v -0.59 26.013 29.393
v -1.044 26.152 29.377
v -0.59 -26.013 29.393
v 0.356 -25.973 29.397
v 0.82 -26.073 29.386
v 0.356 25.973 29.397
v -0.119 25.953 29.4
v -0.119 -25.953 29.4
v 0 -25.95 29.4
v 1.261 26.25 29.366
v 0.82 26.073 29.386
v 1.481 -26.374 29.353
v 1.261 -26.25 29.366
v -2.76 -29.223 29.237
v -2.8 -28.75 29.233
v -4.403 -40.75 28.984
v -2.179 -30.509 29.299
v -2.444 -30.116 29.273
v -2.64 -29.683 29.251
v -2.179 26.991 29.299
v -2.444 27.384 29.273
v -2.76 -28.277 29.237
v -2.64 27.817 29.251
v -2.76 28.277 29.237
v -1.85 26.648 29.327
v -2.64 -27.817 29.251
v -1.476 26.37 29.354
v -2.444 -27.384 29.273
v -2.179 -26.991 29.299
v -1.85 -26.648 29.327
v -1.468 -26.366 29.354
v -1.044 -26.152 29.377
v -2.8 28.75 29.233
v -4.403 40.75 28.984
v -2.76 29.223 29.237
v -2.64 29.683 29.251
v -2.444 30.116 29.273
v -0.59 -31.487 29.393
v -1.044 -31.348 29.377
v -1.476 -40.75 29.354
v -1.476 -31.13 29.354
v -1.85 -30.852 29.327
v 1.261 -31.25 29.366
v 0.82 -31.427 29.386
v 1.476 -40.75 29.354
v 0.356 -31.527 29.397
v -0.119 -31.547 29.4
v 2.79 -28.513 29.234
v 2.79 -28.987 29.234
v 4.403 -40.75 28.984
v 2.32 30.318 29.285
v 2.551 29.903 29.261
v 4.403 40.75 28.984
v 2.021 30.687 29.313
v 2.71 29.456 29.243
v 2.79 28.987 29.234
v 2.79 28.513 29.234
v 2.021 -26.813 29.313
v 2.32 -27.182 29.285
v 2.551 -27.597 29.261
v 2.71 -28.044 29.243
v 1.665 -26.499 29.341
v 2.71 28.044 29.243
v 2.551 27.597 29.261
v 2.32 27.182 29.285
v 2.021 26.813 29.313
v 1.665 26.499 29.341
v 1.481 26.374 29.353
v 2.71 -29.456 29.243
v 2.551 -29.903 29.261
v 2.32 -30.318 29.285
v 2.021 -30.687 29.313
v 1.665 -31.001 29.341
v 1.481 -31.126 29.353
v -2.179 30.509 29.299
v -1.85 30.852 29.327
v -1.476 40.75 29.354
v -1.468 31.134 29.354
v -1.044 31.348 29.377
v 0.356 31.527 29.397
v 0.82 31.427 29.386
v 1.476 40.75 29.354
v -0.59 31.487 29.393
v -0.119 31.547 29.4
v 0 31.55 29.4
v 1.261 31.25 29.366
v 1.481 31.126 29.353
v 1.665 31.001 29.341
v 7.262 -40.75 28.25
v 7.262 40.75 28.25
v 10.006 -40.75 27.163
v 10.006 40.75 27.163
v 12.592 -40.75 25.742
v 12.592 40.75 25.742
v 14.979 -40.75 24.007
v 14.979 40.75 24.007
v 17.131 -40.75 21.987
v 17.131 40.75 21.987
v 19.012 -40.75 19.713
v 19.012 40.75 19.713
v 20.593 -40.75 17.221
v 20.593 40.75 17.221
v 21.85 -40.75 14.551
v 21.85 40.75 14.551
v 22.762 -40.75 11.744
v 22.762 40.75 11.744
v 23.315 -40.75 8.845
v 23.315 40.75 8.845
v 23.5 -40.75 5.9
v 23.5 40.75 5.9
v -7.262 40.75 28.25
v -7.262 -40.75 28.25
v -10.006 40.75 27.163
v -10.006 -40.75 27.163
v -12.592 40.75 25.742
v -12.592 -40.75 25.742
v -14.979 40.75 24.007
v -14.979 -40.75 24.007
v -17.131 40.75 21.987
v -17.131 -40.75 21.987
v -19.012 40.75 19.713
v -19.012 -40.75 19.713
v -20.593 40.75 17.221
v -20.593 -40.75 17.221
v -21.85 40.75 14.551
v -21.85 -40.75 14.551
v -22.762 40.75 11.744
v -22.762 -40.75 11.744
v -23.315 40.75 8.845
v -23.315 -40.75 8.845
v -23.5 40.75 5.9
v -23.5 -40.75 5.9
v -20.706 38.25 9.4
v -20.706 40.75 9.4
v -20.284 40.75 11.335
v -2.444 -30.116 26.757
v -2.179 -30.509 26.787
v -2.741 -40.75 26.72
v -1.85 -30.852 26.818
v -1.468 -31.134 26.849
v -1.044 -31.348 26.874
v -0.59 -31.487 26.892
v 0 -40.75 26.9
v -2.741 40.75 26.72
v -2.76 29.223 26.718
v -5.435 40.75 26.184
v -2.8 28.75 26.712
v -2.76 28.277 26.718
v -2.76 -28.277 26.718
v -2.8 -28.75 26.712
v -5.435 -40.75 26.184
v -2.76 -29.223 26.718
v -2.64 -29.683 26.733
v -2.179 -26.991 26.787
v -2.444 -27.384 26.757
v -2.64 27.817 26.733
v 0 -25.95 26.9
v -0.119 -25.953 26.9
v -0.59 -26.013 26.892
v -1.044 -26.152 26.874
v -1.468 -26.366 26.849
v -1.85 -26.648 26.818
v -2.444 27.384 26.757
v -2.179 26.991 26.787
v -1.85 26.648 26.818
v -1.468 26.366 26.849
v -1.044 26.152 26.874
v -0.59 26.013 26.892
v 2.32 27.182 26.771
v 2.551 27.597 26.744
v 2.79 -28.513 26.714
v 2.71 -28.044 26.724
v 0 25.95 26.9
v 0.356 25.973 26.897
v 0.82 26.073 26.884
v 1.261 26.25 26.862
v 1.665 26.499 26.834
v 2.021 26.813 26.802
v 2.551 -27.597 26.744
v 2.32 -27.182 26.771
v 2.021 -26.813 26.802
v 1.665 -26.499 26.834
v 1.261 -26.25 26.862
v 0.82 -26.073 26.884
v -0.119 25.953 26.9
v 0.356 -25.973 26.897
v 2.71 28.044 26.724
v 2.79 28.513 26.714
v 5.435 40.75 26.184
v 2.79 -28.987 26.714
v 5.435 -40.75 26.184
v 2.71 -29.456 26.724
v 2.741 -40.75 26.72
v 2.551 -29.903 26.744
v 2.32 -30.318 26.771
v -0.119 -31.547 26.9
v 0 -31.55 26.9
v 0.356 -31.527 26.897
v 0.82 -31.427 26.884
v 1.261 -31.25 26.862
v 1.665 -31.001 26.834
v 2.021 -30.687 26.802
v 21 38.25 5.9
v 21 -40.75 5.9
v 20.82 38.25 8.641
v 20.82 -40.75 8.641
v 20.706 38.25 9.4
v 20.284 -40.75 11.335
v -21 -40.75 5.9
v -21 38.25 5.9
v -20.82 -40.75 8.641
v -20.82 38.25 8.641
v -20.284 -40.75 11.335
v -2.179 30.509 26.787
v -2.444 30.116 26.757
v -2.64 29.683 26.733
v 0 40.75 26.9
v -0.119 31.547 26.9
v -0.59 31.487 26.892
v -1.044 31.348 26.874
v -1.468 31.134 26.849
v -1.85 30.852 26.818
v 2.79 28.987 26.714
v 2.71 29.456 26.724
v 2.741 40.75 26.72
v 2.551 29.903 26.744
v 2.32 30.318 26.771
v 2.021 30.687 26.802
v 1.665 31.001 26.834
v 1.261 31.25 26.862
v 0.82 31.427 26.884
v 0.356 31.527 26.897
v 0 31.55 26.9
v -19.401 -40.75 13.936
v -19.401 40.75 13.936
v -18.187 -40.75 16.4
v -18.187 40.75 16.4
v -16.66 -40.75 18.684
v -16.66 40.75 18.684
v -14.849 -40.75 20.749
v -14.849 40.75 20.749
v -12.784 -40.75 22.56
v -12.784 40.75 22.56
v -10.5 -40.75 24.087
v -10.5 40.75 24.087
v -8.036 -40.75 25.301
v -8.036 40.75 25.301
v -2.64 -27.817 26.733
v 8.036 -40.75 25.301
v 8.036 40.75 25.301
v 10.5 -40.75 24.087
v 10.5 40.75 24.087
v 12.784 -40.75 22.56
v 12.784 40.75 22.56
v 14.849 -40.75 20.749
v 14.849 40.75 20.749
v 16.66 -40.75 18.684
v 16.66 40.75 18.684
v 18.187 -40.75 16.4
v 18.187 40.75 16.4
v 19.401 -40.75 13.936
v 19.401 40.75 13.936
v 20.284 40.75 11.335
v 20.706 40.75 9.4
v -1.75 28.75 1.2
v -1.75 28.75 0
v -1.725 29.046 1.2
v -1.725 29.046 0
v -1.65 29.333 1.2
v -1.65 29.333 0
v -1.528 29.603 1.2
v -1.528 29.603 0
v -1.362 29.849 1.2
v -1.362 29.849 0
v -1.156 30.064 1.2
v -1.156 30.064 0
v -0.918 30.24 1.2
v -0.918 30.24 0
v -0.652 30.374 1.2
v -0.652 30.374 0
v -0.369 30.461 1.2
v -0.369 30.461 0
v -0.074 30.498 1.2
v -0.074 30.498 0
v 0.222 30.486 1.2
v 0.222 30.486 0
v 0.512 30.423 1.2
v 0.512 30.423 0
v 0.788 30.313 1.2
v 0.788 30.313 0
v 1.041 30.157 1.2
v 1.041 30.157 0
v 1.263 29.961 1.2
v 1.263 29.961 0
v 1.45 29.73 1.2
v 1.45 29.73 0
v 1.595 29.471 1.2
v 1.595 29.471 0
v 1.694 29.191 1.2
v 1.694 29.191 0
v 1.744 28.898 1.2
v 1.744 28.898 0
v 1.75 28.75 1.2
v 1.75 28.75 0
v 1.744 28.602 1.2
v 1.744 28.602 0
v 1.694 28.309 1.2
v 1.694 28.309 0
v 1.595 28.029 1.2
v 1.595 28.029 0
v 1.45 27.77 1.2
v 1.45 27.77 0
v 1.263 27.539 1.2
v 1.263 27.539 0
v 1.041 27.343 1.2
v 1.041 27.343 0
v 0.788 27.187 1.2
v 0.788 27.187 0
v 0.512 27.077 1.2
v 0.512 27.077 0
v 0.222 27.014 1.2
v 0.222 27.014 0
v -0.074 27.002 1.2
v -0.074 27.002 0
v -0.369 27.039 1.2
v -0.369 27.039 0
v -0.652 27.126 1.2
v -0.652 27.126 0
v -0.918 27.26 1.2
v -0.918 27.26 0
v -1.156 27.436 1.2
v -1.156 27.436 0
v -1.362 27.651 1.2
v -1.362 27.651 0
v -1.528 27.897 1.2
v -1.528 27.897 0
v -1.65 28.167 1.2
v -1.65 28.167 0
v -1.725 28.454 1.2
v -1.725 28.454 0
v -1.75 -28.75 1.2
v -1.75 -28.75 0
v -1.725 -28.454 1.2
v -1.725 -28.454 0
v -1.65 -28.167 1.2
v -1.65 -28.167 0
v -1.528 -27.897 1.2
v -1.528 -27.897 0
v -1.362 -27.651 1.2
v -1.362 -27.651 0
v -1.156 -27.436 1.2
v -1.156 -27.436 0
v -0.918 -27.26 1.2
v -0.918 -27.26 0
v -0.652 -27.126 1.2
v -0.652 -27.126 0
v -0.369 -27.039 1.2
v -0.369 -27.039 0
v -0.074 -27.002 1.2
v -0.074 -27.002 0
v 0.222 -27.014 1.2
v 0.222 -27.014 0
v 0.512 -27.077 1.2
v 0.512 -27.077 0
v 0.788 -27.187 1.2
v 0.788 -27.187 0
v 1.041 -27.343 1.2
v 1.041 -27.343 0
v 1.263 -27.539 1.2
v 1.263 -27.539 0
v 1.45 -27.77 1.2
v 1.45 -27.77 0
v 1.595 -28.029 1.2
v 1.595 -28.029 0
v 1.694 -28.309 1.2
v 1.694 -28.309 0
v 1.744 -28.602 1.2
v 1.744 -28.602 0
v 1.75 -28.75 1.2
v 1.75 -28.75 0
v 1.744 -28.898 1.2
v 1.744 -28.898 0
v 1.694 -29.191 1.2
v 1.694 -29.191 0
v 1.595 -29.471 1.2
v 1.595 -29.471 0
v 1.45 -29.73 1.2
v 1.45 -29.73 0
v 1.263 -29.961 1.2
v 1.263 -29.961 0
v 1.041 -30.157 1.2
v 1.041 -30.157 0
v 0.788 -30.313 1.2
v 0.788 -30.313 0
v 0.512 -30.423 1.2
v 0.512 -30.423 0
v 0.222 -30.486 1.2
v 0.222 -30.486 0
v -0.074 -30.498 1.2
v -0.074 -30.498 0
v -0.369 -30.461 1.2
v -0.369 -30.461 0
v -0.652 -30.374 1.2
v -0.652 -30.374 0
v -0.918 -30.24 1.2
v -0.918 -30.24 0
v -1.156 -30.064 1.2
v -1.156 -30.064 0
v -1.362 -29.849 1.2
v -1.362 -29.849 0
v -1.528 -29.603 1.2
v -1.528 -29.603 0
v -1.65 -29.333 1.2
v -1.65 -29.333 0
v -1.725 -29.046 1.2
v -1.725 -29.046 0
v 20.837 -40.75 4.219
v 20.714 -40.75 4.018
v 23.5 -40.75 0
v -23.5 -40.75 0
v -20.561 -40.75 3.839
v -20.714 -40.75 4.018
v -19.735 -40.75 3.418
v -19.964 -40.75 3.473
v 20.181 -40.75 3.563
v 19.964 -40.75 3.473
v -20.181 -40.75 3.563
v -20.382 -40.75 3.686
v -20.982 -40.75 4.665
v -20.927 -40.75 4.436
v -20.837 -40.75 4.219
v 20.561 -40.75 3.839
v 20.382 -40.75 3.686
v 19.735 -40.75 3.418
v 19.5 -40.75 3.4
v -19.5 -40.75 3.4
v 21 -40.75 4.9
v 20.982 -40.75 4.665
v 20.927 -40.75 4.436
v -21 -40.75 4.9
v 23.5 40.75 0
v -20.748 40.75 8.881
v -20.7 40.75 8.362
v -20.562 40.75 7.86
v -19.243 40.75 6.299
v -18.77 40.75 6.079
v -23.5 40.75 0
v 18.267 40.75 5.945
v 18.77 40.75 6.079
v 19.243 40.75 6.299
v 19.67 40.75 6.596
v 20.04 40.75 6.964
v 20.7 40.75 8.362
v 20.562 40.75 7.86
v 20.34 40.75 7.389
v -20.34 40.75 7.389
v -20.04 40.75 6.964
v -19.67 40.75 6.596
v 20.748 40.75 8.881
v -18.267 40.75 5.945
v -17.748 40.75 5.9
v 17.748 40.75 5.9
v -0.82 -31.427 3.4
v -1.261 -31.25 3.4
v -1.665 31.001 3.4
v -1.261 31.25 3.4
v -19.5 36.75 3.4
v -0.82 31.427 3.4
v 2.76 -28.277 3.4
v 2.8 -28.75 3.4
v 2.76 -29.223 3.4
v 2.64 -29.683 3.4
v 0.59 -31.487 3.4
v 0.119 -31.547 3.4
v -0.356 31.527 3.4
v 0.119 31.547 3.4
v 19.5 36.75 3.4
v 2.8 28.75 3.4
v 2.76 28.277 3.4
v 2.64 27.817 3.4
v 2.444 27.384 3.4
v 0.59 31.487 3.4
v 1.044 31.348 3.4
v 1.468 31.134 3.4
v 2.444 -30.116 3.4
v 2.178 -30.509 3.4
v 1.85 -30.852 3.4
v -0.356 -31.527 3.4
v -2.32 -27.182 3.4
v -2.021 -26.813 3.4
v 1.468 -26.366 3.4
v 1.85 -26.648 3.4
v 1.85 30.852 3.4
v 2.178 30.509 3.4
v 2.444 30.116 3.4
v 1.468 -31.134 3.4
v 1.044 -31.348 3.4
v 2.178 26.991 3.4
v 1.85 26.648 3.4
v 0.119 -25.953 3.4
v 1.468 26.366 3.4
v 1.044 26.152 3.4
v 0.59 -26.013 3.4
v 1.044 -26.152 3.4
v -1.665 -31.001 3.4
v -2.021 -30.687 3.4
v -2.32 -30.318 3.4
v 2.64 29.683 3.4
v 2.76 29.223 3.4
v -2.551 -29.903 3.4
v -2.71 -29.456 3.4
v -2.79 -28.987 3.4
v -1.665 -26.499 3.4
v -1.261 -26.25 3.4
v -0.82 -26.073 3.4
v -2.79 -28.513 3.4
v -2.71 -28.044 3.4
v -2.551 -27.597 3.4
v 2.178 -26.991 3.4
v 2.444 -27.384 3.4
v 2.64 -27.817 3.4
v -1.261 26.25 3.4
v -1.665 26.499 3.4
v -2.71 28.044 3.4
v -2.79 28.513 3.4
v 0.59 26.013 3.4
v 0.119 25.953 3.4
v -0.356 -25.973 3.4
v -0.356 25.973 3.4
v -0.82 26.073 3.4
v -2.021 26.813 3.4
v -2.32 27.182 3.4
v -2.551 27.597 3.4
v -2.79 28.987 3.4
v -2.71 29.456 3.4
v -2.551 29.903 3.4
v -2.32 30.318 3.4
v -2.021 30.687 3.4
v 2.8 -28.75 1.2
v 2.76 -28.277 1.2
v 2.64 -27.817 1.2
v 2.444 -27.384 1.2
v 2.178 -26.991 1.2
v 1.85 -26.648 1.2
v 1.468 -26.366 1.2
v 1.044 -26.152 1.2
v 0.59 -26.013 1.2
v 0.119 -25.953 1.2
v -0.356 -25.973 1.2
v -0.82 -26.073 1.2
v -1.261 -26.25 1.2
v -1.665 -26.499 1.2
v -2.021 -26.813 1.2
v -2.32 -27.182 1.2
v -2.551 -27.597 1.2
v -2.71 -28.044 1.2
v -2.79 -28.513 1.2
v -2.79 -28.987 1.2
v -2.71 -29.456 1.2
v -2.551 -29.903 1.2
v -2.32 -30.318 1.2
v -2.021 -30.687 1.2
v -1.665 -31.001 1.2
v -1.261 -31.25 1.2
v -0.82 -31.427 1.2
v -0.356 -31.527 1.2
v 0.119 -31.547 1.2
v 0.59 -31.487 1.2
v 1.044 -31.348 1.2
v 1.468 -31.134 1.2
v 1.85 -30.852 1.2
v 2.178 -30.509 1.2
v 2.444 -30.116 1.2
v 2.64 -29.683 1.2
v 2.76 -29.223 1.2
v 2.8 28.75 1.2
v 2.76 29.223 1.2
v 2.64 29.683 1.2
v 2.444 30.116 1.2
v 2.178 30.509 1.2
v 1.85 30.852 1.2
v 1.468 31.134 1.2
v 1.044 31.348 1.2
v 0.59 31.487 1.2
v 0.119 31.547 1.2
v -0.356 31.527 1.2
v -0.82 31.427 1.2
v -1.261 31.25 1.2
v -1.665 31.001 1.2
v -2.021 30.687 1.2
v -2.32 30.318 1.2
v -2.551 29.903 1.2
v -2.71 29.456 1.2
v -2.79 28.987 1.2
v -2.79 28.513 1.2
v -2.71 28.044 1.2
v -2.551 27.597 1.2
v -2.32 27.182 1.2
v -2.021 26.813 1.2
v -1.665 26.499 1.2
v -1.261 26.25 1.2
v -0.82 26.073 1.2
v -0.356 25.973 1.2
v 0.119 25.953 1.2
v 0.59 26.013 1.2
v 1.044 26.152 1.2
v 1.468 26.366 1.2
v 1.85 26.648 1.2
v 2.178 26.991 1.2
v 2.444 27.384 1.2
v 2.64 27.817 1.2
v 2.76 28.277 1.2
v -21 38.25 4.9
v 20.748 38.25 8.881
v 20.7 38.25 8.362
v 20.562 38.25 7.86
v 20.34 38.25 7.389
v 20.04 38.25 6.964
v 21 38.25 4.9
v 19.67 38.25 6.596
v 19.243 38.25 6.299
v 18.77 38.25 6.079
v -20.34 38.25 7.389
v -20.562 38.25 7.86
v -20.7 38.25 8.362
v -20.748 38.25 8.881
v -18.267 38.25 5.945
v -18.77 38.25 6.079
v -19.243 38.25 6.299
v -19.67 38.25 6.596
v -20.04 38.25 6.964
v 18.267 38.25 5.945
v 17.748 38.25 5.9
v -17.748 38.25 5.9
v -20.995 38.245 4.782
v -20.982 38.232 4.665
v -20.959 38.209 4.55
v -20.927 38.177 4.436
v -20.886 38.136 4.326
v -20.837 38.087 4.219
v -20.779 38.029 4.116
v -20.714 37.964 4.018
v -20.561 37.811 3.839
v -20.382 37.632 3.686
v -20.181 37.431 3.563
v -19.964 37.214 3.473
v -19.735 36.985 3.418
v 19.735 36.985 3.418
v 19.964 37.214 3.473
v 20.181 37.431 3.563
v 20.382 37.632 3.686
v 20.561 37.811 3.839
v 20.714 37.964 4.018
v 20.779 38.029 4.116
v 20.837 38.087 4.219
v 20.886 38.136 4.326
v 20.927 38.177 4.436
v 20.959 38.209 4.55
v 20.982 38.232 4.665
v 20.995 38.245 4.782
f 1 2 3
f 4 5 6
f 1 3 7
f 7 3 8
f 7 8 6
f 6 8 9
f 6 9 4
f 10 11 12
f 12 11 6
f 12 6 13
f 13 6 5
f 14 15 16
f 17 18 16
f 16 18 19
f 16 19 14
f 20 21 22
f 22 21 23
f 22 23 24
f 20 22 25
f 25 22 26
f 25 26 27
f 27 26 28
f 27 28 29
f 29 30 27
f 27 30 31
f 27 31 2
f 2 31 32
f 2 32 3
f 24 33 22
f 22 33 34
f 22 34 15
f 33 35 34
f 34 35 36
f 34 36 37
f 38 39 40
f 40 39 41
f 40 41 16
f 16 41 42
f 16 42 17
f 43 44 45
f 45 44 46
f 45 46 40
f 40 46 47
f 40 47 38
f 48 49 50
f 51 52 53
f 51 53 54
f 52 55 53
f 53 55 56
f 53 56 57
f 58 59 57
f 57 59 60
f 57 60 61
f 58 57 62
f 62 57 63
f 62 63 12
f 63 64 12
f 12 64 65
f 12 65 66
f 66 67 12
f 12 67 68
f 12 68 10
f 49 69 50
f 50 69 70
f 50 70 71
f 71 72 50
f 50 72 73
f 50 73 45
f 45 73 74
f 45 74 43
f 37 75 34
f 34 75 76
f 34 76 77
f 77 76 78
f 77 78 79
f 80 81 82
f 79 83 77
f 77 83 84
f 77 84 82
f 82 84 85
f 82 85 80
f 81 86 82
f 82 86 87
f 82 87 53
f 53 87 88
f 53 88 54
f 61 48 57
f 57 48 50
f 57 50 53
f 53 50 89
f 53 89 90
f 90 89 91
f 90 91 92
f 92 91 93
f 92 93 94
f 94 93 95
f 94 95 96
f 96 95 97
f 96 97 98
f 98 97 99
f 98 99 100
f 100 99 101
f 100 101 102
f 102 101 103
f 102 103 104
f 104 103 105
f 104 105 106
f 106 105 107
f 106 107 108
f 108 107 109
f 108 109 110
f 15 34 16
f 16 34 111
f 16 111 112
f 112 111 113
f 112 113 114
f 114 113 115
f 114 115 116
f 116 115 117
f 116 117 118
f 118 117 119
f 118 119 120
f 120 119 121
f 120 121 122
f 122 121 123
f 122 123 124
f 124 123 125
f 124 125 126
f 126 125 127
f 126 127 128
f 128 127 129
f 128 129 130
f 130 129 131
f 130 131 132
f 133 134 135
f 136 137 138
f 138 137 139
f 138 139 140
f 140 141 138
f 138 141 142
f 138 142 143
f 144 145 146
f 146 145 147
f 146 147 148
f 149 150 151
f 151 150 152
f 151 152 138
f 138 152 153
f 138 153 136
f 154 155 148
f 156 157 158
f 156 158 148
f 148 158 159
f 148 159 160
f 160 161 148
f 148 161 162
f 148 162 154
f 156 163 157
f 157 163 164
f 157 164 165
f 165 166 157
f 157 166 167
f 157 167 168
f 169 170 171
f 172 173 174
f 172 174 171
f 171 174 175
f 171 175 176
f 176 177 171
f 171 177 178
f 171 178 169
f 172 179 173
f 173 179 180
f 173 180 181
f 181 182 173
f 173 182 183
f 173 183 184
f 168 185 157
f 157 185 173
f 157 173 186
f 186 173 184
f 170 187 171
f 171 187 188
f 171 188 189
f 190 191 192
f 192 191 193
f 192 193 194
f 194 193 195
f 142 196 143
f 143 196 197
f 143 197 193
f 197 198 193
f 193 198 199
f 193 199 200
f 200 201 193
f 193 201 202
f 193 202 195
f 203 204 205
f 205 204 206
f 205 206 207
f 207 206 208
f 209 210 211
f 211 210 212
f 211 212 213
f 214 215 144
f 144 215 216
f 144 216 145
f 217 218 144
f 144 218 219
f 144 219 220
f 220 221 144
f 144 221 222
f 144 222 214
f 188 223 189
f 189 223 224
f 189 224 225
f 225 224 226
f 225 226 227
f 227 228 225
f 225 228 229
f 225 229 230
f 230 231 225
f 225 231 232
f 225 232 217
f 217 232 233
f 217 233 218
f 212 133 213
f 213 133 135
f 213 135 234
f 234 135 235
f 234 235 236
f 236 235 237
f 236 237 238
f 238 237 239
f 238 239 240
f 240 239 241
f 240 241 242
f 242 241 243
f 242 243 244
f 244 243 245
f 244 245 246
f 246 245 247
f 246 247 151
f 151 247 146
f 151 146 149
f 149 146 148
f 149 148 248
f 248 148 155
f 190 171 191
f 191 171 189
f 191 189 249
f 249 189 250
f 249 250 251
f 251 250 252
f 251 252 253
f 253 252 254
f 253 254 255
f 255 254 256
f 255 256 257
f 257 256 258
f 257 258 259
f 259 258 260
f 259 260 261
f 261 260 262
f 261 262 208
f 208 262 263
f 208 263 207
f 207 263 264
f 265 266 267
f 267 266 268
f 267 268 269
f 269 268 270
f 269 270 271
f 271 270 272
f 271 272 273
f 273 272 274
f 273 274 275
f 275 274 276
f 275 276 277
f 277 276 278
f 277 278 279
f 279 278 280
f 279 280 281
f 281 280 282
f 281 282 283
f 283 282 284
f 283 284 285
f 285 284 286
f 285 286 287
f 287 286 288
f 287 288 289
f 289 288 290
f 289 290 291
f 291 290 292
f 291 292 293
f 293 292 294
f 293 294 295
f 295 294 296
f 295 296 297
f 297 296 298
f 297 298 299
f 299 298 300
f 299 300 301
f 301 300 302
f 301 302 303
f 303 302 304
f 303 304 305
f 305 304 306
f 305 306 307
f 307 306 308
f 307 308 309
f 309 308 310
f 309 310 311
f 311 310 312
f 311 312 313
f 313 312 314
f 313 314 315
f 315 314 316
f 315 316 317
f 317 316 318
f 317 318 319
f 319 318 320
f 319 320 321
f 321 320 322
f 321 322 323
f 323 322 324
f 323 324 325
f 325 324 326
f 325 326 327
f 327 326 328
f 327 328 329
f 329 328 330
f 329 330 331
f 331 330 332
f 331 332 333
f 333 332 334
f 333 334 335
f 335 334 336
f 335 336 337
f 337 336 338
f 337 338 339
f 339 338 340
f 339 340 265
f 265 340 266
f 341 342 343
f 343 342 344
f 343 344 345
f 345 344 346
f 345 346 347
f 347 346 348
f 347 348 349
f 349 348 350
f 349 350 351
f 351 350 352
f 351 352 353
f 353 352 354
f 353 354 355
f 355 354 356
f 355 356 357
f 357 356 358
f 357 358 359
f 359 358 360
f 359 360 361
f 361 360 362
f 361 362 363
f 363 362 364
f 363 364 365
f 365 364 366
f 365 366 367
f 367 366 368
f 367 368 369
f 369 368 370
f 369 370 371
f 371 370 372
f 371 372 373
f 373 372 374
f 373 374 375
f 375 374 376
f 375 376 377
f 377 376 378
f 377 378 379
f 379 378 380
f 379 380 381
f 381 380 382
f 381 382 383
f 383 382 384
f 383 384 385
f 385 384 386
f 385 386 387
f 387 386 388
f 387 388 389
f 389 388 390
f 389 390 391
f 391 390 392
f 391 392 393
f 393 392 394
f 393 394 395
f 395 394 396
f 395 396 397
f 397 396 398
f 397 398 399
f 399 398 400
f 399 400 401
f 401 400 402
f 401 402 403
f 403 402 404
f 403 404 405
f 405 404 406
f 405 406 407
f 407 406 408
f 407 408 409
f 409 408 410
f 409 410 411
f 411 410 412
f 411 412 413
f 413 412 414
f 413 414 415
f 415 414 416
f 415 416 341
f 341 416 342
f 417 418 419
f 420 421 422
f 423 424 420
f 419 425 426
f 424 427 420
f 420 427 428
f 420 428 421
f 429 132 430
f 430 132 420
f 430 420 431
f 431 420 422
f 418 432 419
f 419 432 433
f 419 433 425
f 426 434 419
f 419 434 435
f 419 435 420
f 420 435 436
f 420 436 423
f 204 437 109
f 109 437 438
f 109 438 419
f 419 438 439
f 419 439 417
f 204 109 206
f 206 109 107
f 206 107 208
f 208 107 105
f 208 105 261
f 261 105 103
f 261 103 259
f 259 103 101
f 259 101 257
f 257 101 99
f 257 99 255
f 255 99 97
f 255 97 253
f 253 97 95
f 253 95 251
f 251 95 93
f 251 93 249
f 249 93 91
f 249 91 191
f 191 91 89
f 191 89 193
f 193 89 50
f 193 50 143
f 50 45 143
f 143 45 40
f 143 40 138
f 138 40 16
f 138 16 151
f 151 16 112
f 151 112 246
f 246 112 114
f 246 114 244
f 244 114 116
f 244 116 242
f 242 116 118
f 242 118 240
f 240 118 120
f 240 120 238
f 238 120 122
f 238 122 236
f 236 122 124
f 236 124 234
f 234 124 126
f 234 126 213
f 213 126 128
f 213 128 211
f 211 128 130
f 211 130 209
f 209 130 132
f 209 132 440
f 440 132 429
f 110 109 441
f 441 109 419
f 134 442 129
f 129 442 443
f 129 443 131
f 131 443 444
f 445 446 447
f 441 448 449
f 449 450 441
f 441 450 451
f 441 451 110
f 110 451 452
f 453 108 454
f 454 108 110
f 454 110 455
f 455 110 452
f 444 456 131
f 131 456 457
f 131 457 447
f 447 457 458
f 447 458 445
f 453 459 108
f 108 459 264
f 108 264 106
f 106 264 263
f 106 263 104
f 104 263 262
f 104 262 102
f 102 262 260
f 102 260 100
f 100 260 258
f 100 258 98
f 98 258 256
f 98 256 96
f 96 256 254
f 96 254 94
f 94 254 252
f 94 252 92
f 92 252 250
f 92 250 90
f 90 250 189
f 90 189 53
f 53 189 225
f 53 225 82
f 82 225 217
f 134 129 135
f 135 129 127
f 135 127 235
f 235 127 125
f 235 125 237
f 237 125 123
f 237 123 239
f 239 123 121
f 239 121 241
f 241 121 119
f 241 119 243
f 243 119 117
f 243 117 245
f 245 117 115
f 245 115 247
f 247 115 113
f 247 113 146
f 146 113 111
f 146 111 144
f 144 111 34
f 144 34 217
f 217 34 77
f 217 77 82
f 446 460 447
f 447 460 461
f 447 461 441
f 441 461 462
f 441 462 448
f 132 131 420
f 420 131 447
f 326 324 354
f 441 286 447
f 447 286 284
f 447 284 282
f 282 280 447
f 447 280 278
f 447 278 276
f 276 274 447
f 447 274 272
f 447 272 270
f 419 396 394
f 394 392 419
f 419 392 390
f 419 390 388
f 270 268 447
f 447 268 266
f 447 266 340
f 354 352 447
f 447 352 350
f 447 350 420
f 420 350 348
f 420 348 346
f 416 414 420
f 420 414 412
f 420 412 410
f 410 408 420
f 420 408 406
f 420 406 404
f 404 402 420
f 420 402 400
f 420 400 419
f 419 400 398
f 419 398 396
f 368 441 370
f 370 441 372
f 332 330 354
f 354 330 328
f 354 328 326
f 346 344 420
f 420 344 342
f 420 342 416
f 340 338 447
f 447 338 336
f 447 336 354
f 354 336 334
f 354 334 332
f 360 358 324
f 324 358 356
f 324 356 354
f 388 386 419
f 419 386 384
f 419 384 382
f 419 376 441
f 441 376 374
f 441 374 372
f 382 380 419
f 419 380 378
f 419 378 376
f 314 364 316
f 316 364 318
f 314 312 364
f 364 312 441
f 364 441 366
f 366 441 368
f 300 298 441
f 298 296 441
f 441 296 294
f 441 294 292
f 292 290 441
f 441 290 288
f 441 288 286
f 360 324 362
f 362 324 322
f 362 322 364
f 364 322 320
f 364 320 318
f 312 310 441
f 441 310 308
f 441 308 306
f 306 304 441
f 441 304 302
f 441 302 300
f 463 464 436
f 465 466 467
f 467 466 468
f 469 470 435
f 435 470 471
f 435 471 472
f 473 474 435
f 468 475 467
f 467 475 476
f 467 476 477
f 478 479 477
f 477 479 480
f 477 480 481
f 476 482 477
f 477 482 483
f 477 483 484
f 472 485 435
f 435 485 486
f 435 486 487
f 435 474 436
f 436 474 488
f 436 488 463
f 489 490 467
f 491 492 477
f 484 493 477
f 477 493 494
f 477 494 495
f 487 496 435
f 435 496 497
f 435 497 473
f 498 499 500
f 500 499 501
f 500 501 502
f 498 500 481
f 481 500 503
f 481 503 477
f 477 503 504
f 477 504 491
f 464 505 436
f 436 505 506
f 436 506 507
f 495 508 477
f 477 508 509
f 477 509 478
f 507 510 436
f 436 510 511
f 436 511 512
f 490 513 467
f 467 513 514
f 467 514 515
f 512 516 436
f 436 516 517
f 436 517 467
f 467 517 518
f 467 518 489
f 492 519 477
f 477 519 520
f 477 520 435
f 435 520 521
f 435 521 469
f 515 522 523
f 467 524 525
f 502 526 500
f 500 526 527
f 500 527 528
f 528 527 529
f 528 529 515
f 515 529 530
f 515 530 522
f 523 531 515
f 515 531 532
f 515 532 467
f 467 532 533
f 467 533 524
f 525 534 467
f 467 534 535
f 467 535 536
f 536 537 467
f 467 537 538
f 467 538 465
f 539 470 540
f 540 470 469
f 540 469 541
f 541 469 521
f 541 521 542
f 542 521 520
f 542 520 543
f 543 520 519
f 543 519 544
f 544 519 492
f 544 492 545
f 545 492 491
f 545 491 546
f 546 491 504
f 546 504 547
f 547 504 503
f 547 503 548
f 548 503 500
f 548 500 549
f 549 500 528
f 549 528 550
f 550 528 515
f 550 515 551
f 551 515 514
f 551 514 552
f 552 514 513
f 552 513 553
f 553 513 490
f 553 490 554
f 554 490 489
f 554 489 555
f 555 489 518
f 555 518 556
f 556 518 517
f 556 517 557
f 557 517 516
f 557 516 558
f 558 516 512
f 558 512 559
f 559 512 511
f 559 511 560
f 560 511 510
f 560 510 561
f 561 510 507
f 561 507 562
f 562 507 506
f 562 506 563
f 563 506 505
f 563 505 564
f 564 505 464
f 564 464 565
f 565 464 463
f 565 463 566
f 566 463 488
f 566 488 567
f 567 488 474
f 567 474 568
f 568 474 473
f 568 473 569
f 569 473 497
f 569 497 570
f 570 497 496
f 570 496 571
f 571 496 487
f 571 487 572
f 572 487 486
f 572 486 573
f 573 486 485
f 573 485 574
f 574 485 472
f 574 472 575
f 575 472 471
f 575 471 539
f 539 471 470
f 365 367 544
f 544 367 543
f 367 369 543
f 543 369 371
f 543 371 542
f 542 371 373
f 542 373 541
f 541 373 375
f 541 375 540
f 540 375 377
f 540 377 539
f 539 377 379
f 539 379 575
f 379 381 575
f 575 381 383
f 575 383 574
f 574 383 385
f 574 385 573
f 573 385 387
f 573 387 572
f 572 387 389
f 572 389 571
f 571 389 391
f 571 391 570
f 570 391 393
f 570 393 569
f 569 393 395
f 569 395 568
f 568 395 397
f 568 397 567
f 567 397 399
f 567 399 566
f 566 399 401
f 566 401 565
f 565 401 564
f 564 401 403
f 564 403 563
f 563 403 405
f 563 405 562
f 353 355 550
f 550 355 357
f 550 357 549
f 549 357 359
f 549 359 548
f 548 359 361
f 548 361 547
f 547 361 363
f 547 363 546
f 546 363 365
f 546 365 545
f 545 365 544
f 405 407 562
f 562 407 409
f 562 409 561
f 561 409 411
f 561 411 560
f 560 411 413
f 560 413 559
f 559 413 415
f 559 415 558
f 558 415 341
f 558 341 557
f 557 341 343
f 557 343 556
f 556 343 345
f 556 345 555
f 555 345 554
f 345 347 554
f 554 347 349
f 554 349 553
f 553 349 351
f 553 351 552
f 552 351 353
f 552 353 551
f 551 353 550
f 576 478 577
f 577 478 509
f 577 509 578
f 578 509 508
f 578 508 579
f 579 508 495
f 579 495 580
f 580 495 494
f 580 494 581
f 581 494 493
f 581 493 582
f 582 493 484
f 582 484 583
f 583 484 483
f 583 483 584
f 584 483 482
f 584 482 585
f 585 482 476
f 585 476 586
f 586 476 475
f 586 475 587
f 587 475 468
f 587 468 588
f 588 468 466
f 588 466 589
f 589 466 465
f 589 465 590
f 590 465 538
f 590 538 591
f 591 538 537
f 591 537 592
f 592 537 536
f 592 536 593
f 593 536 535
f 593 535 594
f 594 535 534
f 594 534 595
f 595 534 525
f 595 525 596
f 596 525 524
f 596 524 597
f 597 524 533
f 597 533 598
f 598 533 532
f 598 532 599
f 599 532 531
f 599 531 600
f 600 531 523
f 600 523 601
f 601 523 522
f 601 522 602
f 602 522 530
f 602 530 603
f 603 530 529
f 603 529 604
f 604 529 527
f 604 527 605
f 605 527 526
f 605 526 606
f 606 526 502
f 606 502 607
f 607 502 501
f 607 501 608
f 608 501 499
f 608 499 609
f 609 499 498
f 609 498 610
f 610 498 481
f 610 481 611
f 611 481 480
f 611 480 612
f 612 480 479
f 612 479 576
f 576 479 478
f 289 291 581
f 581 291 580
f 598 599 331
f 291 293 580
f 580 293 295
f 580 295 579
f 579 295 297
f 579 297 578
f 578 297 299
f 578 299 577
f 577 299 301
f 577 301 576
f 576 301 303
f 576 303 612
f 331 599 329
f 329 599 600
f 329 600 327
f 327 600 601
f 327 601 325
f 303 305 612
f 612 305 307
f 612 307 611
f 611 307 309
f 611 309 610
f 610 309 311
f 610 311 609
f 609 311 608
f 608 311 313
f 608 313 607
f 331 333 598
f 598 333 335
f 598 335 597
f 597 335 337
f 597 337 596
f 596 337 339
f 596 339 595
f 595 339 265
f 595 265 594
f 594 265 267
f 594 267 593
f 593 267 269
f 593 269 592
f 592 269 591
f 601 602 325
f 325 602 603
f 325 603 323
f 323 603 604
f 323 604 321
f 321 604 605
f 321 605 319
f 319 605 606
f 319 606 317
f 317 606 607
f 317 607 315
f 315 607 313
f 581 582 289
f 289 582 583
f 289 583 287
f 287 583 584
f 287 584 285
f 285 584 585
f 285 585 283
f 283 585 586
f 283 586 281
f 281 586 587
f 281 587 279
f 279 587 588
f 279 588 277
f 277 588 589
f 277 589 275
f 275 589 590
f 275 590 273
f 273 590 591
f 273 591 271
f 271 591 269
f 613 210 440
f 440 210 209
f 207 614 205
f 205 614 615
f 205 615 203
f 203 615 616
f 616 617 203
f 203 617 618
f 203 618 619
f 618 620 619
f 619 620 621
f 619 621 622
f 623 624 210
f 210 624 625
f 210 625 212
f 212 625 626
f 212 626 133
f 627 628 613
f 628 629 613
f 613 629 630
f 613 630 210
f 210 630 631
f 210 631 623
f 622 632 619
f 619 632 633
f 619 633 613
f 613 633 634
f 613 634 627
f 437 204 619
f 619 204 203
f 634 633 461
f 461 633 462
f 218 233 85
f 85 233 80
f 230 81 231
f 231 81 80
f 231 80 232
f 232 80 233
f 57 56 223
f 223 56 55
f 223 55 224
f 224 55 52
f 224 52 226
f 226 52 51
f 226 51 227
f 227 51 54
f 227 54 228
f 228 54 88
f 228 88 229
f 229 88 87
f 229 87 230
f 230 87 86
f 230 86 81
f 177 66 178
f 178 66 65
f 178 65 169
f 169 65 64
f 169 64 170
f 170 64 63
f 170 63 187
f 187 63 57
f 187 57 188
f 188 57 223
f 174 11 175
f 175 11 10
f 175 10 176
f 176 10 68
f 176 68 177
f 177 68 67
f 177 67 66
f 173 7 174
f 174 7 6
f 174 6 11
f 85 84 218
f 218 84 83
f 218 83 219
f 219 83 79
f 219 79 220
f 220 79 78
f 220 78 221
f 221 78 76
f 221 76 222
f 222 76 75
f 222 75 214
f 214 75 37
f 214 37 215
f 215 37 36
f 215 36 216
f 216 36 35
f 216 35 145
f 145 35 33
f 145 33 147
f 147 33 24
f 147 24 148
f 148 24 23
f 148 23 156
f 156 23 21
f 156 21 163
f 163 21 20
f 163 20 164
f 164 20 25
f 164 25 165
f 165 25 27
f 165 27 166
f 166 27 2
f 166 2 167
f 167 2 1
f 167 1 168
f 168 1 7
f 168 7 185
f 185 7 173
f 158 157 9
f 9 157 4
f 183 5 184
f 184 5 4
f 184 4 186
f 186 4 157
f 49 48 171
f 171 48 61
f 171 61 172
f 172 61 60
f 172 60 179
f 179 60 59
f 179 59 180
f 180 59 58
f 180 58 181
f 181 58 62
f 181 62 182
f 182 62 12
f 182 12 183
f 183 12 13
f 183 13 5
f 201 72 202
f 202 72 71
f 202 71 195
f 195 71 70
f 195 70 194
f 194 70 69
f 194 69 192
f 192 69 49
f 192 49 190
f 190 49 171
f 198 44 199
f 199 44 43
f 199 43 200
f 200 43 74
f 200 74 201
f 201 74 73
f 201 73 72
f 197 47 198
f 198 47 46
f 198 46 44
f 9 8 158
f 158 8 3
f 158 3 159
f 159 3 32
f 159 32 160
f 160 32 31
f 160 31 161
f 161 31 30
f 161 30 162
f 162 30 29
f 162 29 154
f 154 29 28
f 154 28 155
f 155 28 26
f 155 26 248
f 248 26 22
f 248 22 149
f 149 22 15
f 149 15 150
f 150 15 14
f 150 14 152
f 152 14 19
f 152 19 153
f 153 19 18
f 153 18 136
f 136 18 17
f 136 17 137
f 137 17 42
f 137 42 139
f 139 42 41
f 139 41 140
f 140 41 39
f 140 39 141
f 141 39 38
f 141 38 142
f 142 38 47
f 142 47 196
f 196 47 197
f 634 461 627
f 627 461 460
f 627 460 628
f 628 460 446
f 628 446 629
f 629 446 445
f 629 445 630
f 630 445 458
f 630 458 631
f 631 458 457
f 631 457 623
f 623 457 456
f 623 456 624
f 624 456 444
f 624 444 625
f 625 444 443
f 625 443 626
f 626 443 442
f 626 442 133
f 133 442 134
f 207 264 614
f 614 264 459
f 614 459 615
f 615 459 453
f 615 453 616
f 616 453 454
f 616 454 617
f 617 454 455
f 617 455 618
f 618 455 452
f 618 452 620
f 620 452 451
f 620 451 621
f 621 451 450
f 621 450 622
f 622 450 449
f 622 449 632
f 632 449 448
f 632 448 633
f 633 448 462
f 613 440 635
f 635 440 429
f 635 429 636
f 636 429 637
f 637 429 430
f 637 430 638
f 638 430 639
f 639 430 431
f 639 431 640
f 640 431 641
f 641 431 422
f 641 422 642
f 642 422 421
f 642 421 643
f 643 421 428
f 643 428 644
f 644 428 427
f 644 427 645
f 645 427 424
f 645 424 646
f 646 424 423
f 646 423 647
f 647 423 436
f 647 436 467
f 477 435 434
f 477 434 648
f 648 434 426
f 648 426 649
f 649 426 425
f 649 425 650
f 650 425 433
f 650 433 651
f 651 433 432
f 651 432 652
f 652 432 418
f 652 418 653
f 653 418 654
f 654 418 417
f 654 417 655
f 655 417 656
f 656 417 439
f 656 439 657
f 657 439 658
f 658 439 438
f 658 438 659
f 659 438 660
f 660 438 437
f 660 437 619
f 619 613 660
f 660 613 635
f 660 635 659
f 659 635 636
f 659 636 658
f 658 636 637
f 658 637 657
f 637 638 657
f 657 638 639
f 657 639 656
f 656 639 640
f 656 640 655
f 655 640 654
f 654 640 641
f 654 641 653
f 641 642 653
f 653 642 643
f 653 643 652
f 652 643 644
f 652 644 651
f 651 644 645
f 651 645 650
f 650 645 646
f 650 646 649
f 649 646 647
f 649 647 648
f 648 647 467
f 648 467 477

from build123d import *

# Parameters (mm, degrees)
SKETCH1_W           = 47
SKETCH1_H           = 81.5
SKETCH1_R           = 1.75
BOSS_EXTRUDE1_DEPTH = 3.4
SKETCH2_R           = 2.8
CUT_EXTRUDE1_DEPTH  = 2.2
BOSS_EXTRUDE2_DEPTH = 2.5
BOSS_EXTRUDE3_DEPTH = 81.5
SKETCH5_R           = 2.8
CUT_EXTRUDE2_DEPTH  = 54.747674368
FILLET1_R           = 3
FILLET2_R           = 1.5


with BuildPart() as part:
    # Sketch1 → Boss-Extrude1 (new body)
    with BuildSketch(Plane.XY):
        Rectangle(SKETCH1_W, SKETCH1_H)
        with Locations((0, 28.75)):
            Circle(SKETCH1_R, mode=Mode.SUBTRACT)
        with Locations((0, -28.75)):
            Circle(SKETCH1_R, mode=Mode.SUBTRACT)
    extrude(amount=BOSS_EXTRUDE1_DEPTH)

    # Sketch2 → Cut-Extrude1 (cut)
    with BuildSketch(Plane.XY.offset(3.4)):
        with Locations((0, 28.75)):
            Circle(SKETCH2_R)
        with Locations((0, -28.75)):
            Circle(SKETCH2_R)
    extrude(amount=-CUT_EXTRUDE1_DEPTH, mode=Mode.SUBTRACT)

    # Sketch3 → Boss-Extrude2 (add)
    with BuildSketch(Plane.XY.offset(3.4)):
        Polygon((21, -38.25), (21, 38.25), (-21, 38.25), (-21, -38.25), (-21, -40.75), (-23.5, -40.75), (-23.5, 40.75), (23.5, 40.75), (23.5, -40.75), (21, -40.75), align=None)
    extrude(amount=BOSS_EXTRUDE2_DEPTH)

    # Sketch4 → Boss-Extrude3 (add)
    with BuildSketch(Plane(origin=(0, 40.75, 0), x_dir=(1, 0, 0), z_dir=(0, 1, 0))):
        with BuildLine():
            Line((23.5, -5.9), (21, -5.9))
            ThreePointArc((21, -5.9), (0, -26.9), (-21, -5.9))
            Line((-21, -5.9), (-23.5, -5.9))
            ThreePointArc((-23.5, -5.9), (0, -29.4), (23.5, -5.9))
        make_face()
    extrude(amount=-BOSS_EXTRUDE3_DEPTH)

    # Sketch5 → Cut-Extrude2 (cut, through all)
    with BuildSketch(Plane.XY.offset(3.4)):
        with Locations((0, -28.75)):
            Circle(SKETCH5_R)
        with Locations((0, 28.75)):
            Circle(SKETCH5_R)
    extrude(amount=CUT_EXTRUDE2_DEPTH, mode=Mode.SUBTRACT)

    # Fillet1
    fillet1_edges = [part.edges().sort_by_distance(p)[0] for p in [
        (-21, 39.5, 5.9),
        (21, 39.5, 5.9),
    ]]
    fillet(fillet1_edges, radius=FILLET1_R)

    # Fillet2
    fillet2_edges = [part.edges().sort_by_distance(p)[0] for p in [
        (-21, -1.25, 3.4),
        (0, 38.25, 3.4),
        (21, -1.25, 3.4),
    ]]
    fillet(fillet2_edges, radius=FILLET2_R)


solid = part.part
